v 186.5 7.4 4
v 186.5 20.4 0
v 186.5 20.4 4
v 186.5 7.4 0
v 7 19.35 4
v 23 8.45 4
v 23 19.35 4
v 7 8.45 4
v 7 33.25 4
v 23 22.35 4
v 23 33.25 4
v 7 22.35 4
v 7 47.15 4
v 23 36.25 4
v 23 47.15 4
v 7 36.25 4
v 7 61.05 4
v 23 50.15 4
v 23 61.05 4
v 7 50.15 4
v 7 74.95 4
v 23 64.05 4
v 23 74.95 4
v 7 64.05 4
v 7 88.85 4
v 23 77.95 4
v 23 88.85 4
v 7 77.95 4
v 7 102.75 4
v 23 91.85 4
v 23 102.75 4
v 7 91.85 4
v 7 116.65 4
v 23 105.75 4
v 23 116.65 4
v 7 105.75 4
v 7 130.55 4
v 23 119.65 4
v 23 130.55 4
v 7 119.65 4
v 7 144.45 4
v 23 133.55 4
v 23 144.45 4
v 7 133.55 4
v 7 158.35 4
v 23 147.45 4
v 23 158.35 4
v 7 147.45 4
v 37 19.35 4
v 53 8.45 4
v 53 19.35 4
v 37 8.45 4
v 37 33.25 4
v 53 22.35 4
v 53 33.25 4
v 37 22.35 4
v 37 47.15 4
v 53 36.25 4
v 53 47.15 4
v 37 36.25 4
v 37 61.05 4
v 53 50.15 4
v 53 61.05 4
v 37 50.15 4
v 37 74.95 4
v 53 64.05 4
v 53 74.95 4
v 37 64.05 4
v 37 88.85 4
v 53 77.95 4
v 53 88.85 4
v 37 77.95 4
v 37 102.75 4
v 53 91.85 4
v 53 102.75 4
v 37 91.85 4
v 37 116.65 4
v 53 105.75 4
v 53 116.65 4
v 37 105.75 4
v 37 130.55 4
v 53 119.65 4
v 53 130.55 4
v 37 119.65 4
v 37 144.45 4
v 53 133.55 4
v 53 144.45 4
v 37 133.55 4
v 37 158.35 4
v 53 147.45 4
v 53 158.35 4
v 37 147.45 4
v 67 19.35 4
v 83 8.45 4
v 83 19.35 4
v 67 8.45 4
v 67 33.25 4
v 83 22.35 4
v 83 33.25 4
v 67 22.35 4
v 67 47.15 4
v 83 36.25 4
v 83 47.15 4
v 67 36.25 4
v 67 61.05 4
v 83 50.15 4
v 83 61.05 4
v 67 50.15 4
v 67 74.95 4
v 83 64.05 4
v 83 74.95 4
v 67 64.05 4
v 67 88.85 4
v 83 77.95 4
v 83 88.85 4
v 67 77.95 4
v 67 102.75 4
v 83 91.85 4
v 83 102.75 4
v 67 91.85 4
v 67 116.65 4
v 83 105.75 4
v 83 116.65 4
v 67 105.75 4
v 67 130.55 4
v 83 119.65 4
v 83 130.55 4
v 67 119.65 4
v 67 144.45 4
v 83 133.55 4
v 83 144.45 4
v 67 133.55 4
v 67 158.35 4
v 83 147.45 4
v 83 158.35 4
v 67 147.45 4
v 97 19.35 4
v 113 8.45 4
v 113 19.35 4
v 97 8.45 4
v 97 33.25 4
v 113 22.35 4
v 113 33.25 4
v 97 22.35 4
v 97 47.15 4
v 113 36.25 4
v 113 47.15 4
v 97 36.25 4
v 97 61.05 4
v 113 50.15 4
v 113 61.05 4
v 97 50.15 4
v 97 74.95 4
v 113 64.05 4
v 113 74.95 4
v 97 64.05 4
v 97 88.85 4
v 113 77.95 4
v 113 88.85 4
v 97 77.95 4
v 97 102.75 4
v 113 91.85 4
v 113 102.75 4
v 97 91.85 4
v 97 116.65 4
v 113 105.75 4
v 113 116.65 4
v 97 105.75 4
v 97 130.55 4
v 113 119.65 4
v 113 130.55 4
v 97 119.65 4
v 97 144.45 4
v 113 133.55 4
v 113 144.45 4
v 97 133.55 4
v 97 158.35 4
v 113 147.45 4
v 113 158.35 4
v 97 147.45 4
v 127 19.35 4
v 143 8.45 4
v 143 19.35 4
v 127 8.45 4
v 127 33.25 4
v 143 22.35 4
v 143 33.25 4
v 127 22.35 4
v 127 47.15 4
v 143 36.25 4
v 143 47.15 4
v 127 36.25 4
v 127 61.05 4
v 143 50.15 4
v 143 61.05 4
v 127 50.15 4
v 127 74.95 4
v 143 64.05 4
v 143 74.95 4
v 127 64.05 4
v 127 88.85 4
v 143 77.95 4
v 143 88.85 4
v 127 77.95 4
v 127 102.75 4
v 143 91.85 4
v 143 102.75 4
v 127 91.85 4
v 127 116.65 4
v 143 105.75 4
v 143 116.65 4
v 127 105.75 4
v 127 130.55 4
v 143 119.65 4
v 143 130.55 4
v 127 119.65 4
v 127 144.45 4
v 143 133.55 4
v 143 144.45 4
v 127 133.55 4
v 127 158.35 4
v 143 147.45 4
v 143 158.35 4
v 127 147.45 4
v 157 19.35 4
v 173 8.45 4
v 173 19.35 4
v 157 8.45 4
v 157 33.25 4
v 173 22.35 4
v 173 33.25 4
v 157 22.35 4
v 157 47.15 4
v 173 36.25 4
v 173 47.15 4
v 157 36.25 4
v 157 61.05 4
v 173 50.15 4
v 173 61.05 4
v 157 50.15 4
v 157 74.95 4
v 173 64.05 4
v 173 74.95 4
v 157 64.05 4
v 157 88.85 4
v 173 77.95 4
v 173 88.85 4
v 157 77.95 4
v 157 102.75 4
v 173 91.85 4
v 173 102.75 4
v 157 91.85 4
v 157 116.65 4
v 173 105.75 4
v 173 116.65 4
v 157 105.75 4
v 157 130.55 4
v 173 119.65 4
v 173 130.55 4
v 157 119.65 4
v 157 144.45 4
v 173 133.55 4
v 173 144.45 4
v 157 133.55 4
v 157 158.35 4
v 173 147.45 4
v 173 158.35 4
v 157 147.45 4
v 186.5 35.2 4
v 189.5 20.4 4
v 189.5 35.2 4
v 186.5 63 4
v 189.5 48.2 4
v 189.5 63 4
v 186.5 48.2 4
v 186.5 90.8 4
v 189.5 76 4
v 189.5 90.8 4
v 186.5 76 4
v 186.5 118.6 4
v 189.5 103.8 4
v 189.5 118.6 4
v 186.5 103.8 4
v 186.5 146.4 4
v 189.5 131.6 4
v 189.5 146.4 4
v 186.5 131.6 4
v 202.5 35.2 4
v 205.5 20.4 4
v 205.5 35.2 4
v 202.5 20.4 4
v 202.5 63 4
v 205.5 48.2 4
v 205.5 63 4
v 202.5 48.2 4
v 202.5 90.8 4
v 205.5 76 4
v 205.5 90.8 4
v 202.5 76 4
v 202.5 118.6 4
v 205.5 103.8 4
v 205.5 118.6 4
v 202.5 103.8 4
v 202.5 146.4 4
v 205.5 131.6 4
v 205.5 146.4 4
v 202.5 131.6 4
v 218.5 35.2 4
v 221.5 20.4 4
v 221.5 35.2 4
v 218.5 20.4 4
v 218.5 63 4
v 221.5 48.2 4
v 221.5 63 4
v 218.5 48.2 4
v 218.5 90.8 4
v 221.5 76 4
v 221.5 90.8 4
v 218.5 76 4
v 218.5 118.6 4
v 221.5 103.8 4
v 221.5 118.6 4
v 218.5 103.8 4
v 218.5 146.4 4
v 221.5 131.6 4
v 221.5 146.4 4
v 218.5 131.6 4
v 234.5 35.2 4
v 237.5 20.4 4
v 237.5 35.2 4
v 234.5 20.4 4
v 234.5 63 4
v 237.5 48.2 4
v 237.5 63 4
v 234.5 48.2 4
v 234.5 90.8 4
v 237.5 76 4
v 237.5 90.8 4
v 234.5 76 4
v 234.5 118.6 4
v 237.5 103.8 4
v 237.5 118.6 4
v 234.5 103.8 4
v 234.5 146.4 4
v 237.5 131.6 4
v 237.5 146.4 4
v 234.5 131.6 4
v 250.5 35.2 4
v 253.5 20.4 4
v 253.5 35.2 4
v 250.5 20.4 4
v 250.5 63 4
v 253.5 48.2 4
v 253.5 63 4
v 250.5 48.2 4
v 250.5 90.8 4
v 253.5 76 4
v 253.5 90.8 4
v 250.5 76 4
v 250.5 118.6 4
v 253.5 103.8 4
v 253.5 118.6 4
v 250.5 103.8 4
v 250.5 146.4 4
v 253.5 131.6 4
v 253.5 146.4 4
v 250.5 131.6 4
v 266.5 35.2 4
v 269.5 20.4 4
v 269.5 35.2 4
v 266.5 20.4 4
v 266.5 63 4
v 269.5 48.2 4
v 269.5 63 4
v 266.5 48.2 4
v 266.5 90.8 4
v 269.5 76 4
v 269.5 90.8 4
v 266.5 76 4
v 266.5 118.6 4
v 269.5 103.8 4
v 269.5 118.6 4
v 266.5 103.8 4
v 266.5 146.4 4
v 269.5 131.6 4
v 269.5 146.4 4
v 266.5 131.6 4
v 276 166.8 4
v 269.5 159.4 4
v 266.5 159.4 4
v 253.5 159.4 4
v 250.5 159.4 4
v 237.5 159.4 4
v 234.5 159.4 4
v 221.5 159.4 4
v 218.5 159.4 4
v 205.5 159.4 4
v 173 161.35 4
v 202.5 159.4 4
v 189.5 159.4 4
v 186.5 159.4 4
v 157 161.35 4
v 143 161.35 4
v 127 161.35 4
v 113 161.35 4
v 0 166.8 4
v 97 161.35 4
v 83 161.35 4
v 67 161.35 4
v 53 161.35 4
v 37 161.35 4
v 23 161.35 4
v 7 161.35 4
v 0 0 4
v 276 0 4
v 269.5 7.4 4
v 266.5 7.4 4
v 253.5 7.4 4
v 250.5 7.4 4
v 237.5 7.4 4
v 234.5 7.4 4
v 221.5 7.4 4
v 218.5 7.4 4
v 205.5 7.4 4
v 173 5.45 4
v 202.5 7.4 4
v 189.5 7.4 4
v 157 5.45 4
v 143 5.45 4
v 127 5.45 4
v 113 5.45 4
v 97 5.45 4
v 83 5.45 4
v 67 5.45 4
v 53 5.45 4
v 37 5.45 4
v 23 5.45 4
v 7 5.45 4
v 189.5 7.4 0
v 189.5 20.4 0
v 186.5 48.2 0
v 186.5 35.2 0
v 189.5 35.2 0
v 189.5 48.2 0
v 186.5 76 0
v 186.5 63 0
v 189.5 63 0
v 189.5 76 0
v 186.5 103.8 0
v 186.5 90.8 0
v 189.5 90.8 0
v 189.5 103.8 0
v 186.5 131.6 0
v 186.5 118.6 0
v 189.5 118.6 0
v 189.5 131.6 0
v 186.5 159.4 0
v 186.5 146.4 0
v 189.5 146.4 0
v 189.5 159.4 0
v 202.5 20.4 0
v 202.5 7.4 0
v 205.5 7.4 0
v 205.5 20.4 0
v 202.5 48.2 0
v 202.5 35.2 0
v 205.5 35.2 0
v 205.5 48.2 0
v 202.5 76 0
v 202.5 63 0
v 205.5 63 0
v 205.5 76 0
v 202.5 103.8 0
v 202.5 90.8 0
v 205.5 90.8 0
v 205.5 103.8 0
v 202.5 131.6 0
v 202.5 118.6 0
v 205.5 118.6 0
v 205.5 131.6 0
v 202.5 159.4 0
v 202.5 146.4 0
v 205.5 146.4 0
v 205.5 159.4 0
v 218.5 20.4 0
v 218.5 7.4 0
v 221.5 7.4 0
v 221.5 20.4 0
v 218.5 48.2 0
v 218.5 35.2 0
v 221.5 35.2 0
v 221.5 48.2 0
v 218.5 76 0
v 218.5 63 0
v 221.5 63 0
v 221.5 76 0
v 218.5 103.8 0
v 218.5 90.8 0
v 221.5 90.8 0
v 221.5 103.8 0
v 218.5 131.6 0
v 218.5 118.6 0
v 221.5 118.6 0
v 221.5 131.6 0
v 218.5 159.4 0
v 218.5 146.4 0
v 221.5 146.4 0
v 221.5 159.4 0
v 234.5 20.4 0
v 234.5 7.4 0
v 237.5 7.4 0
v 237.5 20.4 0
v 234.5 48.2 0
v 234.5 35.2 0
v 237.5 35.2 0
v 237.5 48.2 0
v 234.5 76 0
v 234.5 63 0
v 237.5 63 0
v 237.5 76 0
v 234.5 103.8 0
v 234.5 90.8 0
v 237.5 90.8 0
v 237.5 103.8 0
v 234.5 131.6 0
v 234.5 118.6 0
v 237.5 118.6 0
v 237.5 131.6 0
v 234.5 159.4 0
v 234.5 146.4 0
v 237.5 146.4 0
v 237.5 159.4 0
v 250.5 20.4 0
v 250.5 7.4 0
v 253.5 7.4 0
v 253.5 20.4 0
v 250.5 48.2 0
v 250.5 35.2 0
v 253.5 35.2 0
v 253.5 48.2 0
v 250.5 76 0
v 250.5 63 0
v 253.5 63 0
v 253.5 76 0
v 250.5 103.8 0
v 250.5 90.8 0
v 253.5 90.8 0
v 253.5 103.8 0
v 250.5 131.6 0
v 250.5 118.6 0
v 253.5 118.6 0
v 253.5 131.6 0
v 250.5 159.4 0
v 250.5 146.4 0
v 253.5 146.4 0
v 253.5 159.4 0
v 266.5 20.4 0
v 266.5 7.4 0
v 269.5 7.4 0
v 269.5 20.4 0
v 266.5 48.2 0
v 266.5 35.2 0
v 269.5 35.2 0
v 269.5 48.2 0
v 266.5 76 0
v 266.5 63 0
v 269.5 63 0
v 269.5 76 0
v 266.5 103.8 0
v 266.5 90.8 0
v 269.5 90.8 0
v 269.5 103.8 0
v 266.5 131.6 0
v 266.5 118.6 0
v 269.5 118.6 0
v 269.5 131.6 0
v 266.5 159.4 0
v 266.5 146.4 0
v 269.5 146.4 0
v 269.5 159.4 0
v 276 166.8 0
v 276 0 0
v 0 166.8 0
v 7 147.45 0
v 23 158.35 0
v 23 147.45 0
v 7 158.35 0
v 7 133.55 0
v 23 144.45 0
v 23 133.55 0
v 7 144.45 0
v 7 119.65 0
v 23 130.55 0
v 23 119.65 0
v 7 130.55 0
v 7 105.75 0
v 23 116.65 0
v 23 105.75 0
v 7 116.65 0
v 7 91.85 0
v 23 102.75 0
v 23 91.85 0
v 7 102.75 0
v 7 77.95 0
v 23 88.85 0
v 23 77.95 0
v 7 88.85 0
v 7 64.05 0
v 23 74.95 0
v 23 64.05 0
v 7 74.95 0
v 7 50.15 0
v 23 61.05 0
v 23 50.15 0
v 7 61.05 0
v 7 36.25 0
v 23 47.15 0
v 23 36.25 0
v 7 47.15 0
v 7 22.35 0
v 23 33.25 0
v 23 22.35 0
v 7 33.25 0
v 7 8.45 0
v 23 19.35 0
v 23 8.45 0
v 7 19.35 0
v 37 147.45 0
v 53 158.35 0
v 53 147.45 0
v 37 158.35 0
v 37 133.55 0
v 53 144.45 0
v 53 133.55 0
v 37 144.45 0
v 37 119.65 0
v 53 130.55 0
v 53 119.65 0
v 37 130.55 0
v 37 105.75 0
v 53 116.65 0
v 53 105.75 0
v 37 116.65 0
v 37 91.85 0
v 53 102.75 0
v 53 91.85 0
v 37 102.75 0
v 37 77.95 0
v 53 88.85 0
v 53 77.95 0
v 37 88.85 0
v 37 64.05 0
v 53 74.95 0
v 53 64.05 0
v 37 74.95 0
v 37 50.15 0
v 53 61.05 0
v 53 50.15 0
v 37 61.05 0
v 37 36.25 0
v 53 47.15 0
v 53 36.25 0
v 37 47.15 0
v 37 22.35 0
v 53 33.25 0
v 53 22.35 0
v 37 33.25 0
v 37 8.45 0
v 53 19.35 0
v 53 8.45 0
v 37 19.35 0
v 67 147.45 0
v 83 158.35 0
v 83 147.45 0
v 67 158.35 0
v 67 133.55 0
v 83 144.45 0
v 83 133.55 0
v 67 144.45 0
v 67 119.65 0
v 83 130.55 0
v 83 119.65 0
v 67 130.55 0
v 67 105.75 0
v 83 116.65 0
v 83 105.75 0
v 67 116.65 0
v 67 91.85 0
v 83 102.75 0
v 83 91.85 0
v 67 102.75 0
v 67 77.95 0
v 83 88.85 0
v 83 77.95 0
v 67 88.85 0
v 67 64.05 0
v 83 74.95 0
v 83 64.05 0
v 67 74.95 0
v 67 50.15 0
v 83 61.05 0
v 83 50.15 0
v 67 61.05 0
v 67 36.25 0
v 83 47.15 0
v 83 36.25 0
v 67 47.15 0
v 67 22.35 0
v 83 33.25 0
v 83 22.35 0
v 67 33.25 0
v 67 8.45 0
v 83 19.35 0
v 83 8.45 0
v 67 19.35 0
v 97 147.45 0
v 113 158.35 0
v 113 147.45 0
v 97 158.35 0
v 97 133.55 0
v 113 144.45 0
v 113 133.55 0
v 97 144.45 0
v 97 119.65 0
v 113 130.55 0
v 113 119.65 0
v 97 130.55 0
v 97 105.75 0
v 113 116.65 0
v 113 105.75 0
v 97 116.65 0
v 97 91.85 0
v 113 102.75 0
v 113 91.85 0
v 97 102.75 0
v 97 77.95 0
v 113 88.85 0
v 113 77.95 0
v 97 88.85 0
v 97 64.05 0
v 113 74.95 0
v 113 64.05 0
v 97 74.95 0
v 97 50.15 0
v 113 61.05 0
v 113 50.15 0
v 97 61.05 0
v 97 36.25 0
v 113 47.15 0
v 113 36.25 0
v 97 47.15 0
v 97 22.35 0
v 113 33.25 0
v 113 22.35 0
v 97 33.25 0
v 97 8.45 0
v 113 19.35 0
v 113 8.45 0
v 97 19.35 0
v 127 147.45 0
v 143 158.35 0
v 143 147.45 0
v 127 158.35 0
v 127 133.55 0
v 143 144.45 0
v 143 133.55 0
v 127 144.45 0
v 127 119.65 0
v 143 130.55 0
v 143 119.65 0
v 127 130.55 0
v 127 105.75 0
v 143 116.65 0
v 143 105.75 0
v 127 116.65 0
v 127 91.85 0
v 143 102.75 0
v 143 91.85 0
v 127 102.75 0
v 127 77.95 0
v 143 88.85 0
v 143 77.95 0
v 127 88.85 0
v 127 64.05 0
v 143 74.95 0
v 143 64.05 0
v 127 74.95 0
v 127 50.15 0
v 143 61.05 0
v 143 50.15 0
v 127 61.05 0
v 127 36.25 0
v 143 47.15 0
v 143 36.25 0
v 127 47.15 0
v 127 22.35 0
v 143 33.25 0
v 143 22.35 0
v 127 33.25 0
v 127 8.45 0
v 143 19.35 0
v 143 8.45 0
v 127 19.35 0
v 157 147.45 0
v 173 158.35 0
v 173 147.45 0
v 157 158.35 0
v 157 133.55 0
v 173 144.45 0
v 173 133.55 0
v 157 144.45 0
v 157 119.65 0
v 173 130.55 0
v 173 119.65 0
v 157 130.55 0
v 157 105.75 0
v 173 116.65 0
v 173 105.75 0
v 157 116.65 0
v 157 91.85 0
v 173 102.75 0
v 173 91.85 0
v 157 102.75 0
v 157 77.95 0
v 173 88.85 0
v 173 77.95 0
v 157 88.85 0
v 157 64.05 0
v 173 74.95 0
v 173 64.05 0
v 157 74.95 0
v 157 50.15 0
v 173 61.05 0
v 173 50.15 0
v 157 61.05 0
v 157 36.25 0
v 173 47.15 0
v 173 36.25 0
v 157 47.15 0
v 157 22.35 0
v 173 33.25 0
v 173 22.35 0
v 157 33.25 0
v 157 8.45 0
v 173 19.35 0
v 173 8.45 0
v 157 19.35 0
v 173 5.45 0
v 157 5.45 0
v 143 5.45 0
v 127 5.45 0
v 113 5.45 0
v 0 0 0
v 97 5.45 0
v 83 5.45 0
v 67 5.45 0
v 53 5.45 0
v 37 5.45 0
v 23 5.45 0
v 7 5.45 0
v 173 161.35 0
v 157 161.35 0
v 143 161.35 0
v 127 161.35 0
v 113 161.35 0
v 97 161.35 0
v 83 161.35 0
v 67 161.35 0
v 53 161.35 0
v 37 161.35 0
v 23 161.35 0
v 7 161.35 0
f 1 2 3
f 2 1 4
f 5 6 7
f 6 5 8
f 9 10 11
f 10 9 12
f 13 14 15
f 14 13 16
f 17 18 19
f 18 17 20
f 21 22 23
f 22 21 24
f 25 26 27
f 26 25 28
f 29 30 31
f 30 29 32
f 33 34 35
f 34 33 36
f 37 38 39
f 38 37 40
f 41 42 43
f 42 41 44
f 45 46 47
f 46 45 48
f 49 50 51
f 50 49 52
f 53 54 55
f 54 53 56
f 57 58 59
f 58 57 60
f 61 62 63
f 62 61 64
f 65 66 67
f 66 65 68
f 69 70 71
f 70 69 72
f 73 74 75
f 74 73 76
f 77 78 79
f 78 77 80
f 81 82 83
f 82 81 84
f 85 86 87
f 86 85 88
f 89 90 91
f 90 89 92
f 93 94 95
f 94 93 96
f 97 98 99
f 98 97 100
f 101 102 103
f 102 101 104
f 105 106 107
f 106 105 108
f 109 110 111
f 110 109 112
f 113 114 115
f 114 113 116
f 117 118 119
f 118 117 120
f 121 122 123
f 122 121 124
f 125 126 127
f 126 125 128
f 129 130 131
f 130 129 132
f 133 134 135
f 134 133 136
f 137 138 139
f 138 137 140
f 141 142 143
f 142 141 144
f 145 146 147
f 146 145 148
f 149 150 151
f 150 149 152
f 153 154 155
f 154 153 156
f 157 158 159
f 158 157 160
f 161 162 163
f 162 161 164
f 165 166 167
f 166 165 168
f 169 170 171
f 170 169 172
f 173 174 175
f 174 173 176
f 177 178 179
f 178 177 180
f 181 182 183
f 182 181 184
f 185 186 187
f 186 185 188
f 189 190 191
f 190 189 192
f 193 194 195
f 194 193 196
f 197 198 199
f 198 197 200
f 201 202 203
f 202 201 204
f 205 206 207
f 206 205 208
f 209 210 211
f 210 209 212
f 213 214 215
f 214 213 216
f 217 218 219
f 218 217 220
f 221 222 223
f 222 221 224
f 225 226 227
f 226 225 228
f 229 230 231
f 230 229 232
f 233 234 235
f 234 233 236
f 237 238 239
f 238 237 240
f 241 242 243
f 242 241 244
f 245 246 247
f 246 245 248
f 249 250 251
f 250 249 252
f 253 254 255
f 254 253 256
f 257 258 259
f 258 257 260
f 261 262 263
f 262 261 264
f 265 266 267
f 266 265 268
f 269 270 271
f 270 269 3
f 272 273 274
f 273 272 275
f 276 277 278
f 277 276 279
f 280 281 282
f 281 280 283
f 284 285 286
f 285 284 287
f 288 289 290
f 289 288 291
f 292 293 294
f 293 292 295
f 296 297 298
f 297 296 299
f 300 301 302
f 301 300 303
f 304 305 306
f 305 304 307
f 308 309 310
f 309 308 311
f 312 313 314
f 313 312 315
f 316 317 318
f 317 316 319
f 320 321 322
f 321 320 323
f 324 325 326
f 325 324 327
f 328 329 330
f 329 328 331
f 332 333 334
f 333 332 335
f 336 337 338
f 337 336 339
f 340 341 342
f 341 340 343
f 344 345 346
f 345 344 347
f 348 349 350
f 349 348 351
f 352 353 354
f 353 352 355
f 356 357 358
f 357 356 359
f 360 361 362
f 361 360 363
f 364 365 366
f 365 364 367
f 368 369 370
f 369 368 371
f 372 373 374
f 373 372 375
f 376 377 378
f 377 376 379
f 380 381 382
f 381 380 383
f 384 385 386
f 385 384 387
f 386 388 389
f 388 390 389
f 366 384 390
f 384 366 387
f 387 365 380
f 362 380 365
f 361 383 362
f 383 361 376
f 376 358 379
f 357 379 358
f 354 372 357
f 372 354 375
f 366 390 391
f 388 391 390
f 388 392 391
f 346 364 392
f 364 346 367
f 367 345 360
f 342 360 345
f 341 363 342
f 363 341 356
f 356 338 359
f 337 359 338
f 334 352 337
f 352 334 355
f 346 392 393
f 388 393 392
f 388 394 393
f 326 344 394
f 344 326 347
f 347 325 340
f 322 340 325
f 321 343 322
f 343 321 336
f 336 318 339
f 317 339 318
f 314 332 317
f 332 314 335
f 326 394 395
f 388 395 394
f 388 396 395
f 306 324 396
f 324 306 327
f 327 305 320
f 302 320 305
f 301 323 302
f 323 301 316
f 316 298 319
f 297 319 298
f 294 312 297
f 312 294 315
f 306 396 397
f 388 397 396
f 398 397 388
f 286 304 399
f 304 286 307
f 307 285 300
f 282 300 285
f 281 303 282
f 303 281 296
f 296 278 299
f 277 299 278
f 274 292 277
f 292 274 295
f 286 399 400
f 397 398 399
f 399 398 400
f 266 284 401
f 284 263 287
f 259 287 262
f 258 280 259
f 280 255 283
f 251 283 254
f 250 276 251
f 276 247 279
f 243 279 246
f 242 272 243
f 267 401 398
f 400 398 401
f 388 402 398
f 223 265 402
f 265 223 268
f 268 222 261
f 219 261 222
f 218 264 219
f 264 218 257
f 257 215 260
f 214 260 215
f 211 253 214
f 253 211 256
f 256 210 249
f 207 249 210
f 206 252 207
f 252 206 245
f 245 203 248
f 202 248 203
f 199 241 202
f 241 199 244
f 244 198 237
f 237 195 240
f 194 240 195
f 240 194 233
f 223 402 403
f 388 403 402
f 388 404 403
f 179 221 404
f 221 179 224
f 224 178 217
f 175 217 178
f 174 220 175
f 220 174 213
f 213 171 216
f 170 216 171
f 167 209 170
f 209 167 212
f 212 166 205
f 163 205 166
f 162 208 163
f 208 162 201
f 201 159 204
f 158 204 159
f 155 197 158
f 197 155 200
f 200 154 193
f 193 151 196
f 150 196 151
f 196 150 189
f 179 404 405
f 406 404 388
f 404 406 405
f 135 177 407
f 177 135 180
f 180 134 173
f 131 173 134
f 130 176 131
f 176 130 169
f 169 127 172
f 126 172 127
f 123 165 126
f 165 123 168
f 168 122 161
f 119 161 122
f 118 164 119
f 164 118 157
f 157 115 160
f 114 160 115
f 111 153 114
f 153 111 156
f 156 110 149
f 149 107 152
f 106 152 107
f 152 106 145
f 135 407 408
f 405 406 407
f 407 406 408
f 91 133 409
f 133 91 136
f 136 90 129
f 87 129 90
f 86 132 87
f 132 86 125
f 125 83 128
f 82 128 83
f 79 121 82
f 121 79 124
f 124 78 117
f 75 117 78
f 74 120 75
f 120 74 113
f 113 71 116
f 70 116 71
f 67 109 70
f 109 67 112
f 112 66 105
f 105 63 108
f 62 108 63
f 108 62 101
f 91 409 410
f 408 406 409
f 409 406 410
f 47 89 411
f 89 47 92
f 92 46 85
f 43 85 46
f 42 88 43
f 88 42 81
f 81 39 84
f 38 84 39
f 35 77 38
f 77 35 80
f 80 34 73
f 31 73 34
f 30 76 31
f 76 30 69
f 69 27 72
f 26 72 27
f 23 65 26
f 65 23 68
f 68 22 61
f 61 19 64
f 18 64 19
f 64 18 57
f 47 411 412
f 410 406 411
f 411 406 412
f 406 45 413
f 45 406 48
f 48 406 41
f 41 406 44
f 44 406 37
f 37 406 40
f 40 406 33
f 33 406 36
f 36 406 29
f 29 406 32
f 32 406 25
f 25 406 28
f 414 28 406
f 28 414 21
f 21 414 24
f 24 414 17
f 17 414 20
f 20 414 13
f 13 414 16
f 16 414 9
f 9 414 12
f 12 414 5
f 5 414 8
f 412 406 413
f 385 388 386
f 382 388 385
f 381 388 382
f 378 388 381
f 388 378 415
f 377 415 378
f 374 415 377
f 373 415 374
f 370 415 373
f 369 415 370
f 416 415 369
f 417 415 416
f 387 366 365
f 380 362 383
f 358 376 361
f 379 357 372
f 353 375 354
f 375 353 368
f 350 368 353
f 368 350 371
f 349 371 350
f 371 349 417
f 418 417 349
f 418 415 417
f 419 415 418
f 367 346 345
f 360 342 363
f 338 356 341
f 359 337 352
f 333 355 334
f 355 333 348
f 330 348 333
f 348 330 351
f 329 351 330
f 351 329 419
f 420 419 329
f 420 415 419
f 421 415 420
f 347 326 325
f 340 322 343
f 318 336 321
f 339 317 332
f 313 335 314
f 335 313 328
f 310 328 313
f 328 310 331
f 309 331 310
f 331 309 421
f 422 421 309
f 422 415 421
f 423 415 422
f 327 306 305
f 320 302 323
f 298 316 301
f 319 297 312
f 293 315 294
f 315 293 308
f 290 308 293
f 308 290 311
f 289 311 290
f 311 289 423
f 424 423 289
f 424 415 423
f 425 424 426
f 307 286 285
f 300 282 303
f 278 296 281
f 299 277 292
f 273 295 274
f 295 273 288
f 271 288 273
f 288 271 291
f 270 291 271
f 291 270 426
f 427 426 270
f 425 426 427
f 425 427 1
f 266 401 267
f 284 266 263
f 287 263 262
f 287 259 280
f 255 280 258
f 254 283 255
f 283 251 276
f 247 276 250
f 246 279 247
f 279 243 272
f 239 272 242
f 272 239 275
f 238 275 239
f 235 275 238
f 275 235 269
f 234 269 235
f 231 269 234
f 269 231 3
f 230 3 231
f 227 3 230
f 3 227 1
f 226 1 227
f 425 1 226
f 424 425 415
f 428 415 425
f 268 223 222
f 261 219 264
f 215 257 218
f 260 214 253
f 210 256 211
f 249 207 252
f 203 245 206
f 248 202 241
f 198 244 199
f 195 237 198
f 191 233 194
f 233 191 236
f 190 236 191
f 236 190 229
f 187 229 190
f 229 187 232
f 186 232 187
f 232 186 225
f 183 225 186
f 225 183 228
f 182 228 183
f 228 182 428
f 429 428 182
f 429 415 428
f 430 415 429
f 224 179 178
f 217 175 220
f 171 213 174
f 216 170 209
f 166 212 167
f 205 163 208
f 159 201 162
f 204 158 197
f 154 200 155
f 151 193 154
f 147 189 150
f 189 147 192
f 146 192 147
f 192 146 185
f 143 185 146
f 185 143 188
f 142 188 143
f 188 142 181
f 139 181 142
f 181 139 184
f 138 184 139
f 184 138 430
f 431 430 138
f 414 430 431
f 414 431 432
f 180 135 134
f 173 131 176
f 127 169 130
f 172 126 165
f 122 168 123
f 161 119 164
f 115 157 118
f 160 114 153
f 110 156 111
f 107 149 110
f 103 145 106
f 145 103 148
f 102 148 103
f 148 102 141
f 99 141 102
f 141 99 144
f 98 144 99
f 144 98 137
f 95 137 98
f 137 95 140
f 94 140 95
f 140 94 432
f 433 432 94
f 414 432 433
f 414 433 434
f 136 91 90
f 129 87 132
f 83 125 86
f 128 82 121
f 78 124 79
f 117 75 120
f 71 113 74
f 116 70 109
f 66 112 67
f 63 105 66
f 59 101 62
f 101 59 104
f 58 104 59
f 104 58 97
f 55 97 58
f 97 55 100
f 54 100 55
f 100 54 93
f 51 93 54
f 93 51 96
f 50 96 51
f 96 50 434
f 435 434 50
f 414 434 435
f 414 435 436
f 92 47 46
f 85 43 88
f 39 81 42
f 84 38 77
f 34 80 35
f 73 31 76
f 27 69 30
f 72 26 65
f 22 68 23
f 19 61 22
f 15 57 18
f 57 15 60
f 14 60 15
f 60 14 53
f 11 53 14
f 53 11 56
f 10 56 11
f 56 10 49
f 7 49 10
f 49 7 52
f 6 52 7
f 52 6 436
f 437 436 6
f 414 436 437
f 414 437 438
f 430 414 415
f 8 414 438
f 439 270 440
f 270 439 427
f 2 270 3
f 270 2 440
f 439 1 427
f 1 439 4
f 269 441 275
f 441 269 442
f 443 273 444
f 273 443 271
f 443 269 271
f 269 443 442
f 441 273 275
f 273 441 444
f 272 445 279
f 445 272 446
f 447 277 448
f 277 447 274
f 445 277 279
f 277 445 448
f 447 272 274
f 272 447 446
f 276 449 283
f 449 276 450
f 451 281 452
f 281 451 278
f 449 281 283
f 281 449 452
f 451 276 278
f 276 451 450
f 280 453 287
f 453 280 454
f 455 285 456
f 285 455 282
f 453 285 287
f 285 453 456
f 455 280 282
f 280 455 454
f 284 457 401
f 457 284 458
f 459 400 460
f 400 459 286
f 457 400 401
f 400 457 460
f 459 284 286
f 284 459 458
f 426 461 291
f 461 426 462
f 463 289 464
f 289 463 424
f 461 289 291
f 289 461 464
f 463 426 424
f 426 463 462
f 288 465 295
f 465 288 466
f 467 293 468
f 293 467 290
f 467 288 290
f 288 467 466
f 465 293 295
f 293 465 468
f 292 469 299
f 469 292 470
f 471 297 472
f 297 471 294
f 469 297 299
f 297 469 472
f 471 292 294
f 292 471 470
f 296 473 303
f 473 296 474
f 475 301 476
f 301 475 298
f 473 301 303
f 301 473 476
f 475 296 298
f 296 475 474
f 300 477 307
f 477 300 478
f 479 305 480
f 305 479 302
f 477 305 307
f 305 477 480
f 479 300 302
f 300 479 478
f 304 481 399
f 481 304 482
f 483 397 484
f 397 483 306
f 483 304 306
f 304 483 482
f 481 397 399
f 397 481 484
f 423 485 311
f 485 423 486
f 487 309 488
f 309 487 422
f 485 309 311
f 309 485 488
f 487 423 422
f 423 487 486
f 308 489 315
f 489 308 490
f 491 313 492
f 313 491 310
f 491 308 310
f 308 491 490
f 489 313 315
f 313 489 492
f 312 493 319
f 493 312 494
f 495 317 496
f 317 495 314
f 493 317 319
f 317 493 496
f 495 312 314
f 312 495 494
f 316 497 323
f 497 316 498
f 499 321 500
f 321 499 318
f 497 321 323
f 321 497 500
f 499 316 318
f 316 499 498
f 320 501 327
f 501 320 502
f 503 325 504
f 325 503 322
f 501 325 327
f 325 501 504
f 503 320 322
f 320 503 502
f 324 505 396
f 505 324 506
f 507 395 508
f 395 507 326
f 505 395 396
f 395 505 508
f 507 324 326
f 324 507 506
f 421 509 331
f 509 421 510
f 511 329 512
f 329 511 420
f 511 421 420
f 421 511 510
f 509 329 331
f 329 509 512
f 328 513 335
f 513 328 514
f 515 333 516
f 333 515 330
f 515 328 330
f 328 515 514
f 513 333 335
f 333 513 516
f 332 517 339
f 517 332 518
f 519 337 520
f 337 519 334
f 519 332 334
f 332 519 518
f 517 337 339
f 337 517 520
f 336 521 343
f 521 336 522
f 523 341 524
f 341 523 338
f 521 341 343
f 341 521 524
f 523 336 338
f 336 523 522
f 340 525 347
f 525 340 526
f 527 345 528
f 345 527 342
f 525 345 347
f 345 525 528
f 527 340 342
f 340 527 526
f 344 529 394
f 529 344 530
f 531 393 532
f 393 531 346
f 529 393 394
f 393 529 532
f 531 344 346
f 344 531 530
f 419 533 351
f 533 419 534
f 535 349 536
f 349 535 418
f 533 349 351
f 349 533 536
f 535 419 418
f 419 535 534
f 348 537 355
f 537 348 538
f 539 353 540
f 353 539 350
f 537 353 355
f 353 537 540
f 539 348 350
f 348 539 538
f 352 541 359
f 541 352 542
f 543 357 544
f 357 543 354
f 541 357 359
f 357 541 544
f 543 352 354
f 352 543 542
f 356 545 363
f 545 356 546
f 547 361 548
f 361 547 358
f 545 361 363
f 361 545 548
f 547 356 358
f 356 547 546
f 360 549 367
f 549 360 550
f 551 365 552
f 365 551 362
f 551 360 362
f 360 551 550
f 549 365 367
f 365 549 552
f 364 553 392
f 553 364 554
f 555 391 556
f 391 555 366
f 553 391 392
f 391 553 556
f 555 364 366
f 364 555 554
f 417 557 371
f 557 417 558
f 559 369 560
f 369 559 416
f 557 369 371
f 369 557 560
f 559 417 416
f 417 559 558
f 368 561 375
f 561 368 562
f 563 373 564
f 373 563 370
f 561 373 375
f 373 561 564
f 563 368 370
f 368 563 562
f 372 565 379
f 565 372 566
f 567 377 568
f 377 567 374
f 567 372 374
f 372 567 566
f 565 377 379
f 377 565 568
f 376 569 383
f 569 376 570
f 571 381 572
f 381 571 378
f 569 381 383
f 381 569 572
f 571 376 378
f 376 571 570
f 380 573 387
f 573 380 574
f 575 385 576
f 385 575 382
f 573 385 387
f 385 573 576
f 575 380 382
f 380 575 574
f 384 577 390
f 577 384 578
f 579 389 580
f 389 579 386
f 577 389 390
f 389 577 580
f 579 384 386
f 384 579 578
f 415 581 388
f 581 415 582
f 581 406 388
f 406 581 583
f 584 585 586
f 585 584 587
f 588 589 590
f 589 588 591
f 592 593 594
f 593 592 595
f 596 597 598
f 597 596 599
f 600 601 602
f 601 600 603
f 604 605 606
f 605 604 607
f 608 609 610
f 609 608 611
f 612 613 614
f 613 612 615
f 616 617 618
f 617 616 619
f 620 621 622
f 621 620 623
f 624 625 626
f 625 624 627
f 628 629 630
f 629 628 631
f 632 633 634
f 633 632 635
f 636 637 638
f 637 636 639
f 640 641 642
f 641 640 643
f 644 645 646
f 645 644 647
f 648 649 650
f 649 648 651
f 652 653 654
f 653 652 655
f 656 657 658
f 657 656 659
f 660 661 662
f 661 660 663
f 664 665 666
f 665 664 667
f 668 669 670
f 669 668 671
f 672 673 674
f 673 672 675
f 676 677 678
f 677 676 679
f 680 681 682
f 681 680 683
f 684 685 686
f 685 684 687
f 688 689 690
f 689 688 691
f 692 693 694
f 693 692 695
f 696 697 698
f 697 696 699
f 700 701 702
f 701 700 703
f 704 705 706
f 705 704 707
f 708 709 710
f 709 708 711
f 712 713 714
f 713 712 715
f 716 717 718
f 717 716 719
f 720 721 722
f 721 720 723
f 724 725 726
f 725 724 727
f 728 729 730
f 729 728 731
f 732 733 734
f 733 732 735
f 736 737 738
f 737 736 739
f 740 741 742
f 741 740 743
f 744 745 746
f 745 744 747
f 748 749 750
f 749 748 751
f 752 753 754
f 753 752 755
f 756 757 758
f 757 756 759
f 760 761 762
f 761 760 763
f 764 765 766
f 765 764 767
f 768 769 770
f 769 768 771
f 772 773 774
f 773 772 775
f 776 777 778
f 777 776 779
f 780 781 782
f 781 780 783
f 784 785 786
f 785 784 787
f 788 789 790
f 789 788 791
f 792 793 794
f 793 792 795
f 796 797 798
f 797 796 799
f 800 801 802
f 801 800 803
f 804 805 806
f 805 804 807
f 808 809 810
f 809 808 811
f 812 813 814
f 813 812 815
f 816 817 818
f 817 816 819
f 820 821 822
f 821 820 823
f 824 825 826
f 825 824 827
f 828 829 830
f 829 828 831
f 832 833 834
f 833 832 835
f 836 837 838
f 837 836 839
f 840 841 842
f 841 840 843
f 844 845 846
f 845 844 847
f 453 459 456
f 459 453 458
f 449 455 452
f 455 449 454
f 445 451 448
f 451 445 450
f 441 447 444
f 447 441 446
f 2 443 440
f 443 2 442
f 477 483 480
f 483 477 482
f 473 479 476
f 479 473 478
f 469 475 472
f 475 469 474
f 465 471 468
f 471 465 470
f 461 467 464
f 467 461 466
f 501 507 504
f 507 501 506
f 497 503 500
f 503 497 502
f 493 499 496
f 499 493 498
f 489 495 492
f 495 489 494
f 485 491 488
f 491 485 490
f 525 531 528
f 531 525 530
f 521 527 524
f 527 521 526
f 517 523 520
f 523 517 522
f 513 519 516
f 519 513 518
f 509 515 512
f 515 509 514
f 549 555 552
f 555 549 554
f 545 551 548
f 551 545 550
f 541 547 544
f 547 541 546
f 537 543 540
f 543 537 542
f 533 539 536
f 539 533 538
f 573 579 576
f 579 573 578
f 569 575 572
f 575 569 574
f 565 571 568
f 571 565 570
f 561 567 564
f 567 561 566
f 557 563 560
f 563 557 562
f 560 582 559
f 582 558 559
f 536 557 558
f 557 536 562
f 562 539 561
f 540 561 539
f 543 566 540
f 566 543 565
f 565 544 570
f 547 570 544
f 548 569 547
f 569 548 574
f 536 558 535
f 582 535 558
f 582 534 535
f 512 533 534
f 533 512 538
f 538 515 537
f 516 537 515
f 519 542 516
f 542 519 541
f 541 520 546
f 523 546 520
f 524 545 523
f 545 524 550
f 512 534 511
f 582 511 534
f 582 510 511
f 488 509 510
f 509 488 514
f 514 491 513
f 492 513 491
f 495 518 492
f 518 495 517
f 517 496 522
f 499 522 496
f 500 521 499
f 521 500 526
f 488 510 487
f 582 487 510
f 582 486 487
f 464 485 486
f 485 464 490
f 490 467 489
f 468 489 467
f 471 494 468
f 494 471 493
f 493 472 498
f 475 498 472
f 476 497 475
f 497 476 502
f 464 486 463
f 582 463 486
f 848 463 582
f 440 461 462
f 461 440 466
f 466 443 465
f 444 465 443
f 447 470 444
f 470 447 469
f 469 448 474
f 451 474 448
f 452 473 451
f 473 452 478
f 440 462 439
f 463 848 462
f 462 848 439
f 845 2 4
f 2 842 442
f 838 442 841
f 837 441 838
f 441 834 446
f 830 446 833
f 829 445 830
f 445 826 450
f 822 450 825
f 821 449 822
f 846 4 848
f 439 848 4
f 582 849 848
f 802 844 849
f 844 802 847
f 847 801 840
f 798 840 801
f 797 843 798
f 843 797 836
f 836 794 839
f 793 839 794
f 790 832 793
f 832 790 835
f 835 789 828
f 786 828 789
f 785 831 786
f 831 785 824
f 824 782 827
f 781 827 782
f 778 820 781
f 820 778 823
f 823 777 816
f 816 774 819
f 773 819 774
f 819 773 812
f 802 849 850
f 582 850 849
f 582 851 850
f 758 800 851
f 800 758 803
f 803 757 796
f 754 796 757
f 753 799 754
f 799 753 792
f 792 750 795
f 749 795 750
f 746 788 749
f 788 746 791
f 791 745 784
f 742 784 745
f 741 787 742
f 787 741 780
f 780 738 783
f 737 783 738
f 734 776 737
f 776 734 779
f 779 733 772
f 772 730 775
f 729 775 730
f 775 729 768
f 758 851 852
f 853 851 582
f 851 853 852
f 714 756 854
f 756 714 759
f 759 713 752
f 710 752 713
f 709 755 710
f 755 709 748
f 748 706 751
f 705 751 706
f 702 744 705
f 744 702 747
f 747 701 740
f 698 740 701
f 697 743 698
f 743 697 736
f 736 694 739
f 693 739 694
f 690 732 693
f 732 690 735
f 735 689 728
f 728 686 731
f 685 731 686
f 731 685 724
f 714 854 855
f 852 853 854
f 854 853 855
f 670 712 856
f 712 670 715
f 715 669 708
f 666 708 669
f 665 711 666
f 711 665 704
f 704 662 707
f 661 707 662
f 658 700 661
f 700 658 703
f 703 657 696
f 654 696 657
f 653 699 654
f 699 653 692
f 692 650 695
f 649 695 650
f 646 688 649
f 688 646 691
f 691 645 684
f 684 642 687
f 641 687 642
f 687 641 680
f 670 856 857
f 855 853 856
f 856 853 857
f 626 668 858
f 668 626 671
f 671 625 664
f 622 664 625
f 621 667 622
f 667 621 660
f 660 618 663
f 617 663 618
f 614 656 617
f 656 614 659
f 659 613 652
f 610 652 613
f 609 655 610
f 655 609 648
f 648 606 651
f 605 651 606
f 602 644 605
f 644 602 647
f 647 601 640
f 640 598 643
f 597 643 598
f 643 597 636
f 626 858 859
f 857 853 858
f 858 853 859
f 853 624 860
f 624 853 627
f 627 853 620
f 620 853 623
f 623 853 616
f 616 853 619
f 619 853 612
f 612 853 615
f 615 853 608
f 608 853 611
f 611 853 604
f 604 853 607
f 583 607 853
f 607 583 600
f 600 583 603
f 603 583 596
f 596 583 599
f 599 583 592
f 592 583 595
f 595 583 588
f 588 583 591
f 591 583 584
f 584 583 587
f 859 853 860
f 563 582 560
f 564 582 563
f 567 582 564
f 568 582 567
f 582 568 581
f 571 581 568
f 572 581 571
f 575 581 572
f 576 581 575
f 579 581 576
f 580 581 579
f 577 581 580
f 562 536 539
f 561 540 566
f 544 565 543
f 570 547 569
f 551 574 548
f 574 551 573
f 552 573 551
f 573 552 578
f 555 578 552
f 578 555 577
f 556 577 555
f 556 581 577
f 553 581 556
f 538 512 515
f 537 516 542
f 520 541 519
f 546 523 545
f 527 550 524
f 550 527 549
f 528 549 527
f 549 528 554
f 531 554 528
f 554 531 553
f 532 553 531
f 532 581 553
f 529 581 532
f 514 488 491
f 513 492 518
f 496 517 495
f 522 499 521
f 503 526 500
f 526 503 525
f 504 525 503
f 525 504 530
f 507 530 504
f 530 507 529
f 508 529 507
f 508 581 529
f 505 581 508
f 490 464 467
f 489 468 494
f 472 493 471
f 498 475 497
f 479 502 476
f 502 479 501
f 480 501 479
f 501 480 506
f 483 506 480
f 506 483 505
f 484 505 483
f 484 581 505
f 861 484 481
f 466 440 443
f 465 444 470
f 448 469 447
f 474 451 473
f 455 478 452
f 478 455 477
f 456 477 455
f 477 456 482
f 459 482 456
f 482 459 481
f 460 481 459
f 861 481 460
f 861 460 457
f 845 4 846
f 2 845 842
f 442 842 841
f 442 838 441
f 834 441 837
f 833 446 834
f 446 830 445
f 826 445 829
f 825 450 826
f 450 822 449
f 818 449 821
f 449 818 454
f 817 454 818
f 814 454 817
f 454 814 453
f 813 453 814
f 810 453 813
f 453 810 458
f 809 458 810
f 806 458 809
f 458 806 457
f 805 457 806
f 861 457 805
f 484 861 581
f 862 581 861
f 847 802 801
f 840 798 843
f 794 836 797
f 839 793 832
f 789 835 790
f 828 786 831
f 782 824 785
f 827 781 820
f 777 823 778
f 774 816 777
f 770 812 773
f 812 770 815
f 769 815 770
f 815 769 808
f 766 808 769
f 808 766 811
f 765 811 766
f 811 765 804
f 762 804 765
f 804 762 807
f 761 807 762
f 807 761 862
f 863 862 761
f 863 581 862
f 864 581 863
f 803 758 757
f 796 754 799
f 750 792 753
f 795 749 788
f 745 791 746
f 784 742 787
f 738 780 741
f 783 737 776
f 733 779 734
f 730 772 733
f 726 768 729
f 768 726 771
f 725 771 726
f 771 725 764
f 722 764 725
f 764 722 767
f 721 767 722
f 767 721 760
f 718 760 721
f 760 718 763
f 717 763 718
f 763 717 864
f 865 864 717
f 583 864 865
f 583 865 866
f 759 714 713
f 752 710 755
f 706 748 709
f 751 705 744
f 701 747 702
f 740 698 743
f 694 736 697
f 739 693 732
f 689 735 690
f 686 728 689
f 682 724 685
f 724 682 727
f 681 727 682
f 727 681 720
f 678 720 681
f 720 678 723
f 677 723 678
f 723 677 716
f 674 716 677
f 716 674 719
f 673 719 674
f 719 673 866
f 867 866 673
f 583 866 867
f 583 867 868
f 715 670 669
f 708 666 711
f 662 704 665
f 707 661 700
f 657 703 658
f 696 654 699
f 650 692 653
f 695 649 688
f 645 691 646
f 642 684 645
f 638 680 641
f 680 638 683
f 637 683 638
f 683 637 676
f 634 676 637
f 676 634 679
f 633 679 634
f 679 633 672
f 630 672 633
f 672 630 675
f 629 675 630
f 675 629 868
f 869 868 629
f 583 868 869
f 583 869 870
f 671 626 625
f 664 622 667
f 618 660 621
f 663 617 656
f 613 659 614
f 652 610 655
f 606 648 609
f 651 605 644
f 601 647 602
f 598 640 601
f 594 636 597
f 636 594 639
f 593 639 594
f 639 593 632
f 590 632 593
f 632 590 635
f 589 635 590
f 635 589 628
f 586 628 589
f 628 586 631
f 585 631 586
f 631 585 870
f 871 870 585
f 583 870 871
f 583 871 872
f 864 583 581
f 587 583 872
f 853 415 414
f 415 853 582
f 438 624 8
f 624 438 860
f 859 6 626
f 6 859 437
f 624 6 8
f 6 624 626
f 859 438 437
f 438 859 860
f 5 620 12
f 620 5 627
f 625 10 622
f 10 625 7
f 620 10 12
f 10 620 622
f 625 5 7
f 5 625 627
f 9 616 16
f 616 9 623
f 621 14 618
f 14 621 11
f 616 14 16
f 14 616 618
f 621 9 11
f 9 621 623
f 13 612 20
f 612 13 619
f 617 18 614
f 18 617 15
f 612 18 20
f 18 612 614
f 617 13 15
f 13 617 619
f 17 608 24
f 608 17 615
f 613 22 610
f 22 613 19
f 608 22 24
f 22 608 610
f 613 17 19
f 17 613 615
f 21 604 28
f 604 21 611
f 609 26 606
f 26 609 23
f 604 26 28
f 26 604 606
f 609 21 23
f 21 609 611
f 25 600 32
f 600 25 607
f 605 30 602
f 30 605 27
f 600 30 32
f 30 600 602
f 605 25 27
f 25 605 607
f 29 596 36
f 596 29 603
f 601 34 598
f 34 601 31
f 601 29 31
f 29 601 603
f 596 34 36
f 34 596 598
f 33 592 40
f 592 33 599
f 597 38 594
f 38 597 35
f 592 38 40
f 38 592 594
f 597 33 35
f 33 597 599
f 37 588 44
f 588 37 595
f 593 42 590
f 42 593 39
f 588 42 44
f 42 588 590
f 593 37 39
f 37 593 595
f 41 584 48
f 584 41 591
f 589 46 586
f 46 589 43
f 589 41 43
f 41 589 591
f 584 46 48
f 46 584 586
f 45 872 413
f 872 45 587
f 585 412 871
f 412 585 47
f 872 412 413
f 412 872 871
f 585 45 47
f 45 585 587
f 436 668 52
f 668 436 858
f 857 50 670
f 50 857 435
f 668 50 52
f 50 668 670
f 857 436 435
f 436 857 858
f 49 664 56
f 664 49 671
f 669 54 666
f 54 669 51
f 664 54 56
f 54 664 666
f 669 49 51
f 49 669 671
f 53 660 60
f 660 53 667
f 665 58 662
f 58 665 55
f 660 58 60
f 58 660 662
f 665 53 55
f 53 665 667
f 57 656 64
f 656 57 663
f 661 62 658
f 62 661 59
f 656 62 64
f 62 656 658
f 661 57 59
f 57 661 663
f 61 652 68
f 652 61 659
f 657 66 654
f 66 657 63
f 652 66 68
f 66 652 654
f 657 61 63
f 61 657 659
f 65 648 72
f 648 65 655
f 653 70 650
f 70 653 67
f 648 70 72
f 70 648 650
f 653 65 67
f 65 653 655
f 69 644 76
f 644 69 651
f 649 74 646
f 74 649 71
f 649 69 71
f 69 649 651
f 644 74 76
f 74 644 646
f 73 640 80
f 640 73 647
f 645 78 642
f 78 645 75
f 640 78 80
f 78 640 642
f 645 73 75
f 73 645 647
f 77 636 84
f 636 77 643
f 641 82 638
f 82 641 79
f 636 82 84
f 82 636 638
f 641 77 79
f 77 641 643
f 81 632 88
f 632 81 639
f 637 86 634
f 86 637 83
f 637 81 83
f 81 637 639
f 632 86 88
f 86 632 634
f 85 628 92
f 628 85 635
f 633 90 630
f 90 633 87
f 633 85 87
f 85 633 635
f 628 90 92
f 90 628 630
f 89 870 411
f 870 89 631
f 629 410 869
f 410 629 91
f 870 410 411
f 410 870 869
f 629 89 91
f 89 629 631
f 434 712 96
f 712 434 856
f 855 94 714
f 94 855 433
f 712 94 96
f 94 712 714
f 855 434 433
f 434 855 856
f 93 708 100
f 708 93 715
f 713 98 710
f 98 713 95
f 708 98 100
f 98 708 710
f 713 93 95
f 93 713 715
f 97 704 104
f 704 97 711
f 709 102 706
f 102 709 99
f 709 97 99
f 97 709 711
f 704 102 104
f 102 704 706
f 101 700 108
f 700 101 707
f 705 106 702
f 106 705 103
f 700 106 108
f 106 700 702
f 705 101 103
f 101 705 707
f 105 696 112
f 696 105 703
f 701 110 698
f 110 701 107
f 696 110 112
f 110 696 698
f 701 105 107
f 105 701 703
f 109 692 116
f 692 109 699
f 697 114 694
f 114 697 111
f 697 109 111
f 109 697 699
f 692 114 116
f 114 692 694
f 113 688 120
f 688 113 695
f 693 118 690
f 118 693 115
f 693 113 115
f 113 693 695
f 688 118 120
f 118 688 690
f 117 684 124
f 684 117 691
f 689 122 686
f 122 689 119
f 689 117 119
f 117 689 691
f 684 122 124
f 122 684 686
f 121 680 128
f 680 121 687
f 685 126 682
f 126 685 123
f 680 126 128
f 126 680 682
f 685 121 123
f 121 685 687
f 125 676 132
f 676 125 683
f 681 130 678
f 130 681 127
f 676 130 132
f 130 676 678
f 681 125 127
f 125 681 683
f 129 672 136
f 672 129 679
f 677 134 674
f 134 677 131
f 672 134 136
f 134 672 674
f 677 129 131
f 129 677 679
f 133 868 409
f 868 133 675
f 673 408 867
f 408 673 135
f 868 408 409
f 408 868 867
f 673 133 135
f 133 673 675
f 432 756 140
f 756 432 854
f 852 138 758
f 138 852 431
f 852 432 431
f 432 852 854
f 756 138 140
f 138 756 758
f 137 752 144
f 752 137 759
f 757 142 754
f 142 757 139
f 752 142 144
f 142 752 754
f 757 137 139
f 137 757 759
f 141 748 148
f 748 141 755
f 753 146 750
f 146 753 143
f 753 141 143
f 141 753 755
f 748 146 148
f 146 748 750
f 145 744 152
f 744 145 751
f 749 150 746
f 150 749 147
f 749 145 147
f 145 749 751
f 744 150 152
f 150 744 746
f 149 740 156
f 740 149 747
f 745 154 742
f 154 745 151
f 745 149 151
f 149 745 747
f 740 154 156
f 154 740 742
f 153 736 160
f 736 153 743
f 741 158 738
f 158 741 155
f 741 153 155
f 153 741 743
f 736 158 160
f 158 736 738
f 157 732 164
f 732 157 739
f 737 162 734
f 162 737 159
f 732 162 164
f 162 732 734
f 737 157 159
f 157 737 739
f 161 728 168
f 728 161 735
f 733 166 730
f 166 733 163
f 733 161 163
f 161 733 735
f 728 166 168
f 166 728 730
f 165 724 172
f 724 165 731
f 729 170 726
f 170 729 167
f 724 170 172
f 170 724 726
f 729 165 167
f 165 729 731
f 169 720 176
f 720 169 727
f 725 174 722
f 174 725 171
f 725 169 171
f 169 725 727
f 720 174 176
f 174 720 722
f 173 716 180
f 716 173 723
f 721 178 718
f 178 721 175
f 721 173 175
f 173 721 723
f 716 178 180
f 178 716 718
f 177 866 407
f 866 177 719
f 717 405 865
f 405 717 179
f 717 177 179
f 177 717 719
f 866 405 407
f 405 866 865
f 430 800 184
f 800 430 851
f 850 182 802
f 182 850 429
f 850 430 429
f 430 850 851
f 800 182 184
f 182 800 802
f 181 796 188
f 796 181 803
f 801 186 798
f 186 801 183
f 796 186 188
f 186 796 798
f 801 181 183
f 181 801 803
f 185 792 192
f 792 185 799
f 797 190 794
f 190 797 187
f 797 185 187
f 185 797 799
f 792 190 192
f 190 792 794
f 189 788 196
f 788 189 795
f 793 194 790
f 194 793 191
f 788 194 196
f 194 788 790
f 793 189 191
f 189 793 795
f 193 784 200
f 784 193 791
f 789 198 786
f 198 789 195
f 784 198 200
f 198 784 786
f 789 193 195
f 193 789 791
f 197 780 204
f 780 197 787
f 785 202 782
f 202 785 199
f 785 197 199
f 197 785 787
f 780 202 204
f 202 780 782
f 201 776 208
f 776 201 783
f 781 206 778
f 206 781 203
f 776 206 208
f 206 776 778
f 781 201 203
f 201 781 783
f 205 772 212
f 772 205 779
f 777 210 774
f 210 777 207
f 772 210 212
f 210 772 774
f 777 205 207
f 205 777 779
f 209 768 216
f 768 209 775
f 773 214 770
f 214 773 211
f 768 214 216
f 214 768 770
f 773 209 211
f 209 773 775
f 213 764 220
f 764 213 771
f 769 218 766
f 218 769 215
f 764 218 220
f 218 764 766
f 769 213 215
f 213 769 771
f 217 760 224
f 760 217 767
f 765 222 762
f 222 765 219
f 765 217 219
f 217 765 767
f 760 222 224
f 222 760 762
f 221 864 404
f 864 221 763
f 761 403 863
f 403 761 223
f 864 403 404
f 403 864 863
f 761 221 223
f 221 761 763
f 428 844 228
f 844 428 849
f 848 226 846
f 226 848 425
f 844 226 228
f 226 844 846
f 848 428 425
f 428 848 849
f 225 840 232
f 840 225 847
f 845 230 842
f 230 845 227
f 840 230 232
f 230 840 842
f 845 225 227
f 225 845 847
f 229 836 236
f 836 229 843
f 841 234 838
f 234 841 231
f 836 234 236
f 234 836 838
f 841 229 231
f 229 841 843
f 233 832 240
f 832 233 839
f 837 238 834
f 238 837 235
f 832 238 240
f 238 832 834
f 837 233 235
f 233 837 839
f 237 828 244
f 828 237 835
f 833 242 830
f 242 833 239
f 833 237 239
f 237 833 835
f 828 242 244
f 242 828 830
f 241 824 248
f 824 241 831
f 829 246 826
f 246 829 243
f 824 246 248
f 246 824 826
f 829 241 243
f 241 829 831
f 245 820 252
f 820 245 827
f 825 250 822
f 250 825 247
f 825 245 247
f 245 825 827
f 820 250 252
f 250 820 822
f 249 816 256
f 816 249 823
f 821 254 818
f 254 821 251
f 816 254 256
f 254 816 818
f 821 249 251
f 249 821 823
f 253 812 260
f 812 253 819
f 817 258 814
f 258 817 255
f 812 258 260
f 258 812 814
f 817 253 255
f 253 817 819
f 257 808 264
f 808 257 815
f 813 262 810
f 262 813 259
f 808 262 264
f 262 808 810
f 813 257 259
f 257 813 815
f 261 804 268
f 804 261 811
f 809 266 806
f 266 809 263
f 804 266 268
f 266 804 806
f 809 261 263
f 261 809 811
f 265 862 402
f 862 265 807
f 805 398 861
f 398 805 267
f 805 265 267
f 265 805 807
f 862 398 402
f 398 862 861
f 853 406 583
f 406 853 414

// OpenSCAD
module baseplate(w,d,w_reps,d_reps,w_distance,d_distance){
    thickness = 4;
    w_space = w/w_reps;
    d_space = d/d_reps;
    echo(w_space);
        difference(){
        cube([w,d,thickness]);
        for (i = [1:w_reps]){
            for (j = [1:d_reps]){
                translate([w_space*i-(w_space/2),d_space*j-(d_space/2),0]){
                cube([w_distance,d_distance,thickness*2],center=true);
                }
            }
        }
    }
}

w = 270;
d = 166.8;
baseplate(w/3*2,d,6,12,16,3);
translate([w/3*2,0,0]){
    baseplate(96,d,6,6,3,13);
}


/*
projection(cut = true){
    translate([d,0,0]){
        rotate([0,0,90]){
            baseplate(w/3*2,d,6,12,16,3);
            translate([w/3*2,0,0]){
                baseplate(96,d,6,6,3,13);
            }
        }
    }
}*/
